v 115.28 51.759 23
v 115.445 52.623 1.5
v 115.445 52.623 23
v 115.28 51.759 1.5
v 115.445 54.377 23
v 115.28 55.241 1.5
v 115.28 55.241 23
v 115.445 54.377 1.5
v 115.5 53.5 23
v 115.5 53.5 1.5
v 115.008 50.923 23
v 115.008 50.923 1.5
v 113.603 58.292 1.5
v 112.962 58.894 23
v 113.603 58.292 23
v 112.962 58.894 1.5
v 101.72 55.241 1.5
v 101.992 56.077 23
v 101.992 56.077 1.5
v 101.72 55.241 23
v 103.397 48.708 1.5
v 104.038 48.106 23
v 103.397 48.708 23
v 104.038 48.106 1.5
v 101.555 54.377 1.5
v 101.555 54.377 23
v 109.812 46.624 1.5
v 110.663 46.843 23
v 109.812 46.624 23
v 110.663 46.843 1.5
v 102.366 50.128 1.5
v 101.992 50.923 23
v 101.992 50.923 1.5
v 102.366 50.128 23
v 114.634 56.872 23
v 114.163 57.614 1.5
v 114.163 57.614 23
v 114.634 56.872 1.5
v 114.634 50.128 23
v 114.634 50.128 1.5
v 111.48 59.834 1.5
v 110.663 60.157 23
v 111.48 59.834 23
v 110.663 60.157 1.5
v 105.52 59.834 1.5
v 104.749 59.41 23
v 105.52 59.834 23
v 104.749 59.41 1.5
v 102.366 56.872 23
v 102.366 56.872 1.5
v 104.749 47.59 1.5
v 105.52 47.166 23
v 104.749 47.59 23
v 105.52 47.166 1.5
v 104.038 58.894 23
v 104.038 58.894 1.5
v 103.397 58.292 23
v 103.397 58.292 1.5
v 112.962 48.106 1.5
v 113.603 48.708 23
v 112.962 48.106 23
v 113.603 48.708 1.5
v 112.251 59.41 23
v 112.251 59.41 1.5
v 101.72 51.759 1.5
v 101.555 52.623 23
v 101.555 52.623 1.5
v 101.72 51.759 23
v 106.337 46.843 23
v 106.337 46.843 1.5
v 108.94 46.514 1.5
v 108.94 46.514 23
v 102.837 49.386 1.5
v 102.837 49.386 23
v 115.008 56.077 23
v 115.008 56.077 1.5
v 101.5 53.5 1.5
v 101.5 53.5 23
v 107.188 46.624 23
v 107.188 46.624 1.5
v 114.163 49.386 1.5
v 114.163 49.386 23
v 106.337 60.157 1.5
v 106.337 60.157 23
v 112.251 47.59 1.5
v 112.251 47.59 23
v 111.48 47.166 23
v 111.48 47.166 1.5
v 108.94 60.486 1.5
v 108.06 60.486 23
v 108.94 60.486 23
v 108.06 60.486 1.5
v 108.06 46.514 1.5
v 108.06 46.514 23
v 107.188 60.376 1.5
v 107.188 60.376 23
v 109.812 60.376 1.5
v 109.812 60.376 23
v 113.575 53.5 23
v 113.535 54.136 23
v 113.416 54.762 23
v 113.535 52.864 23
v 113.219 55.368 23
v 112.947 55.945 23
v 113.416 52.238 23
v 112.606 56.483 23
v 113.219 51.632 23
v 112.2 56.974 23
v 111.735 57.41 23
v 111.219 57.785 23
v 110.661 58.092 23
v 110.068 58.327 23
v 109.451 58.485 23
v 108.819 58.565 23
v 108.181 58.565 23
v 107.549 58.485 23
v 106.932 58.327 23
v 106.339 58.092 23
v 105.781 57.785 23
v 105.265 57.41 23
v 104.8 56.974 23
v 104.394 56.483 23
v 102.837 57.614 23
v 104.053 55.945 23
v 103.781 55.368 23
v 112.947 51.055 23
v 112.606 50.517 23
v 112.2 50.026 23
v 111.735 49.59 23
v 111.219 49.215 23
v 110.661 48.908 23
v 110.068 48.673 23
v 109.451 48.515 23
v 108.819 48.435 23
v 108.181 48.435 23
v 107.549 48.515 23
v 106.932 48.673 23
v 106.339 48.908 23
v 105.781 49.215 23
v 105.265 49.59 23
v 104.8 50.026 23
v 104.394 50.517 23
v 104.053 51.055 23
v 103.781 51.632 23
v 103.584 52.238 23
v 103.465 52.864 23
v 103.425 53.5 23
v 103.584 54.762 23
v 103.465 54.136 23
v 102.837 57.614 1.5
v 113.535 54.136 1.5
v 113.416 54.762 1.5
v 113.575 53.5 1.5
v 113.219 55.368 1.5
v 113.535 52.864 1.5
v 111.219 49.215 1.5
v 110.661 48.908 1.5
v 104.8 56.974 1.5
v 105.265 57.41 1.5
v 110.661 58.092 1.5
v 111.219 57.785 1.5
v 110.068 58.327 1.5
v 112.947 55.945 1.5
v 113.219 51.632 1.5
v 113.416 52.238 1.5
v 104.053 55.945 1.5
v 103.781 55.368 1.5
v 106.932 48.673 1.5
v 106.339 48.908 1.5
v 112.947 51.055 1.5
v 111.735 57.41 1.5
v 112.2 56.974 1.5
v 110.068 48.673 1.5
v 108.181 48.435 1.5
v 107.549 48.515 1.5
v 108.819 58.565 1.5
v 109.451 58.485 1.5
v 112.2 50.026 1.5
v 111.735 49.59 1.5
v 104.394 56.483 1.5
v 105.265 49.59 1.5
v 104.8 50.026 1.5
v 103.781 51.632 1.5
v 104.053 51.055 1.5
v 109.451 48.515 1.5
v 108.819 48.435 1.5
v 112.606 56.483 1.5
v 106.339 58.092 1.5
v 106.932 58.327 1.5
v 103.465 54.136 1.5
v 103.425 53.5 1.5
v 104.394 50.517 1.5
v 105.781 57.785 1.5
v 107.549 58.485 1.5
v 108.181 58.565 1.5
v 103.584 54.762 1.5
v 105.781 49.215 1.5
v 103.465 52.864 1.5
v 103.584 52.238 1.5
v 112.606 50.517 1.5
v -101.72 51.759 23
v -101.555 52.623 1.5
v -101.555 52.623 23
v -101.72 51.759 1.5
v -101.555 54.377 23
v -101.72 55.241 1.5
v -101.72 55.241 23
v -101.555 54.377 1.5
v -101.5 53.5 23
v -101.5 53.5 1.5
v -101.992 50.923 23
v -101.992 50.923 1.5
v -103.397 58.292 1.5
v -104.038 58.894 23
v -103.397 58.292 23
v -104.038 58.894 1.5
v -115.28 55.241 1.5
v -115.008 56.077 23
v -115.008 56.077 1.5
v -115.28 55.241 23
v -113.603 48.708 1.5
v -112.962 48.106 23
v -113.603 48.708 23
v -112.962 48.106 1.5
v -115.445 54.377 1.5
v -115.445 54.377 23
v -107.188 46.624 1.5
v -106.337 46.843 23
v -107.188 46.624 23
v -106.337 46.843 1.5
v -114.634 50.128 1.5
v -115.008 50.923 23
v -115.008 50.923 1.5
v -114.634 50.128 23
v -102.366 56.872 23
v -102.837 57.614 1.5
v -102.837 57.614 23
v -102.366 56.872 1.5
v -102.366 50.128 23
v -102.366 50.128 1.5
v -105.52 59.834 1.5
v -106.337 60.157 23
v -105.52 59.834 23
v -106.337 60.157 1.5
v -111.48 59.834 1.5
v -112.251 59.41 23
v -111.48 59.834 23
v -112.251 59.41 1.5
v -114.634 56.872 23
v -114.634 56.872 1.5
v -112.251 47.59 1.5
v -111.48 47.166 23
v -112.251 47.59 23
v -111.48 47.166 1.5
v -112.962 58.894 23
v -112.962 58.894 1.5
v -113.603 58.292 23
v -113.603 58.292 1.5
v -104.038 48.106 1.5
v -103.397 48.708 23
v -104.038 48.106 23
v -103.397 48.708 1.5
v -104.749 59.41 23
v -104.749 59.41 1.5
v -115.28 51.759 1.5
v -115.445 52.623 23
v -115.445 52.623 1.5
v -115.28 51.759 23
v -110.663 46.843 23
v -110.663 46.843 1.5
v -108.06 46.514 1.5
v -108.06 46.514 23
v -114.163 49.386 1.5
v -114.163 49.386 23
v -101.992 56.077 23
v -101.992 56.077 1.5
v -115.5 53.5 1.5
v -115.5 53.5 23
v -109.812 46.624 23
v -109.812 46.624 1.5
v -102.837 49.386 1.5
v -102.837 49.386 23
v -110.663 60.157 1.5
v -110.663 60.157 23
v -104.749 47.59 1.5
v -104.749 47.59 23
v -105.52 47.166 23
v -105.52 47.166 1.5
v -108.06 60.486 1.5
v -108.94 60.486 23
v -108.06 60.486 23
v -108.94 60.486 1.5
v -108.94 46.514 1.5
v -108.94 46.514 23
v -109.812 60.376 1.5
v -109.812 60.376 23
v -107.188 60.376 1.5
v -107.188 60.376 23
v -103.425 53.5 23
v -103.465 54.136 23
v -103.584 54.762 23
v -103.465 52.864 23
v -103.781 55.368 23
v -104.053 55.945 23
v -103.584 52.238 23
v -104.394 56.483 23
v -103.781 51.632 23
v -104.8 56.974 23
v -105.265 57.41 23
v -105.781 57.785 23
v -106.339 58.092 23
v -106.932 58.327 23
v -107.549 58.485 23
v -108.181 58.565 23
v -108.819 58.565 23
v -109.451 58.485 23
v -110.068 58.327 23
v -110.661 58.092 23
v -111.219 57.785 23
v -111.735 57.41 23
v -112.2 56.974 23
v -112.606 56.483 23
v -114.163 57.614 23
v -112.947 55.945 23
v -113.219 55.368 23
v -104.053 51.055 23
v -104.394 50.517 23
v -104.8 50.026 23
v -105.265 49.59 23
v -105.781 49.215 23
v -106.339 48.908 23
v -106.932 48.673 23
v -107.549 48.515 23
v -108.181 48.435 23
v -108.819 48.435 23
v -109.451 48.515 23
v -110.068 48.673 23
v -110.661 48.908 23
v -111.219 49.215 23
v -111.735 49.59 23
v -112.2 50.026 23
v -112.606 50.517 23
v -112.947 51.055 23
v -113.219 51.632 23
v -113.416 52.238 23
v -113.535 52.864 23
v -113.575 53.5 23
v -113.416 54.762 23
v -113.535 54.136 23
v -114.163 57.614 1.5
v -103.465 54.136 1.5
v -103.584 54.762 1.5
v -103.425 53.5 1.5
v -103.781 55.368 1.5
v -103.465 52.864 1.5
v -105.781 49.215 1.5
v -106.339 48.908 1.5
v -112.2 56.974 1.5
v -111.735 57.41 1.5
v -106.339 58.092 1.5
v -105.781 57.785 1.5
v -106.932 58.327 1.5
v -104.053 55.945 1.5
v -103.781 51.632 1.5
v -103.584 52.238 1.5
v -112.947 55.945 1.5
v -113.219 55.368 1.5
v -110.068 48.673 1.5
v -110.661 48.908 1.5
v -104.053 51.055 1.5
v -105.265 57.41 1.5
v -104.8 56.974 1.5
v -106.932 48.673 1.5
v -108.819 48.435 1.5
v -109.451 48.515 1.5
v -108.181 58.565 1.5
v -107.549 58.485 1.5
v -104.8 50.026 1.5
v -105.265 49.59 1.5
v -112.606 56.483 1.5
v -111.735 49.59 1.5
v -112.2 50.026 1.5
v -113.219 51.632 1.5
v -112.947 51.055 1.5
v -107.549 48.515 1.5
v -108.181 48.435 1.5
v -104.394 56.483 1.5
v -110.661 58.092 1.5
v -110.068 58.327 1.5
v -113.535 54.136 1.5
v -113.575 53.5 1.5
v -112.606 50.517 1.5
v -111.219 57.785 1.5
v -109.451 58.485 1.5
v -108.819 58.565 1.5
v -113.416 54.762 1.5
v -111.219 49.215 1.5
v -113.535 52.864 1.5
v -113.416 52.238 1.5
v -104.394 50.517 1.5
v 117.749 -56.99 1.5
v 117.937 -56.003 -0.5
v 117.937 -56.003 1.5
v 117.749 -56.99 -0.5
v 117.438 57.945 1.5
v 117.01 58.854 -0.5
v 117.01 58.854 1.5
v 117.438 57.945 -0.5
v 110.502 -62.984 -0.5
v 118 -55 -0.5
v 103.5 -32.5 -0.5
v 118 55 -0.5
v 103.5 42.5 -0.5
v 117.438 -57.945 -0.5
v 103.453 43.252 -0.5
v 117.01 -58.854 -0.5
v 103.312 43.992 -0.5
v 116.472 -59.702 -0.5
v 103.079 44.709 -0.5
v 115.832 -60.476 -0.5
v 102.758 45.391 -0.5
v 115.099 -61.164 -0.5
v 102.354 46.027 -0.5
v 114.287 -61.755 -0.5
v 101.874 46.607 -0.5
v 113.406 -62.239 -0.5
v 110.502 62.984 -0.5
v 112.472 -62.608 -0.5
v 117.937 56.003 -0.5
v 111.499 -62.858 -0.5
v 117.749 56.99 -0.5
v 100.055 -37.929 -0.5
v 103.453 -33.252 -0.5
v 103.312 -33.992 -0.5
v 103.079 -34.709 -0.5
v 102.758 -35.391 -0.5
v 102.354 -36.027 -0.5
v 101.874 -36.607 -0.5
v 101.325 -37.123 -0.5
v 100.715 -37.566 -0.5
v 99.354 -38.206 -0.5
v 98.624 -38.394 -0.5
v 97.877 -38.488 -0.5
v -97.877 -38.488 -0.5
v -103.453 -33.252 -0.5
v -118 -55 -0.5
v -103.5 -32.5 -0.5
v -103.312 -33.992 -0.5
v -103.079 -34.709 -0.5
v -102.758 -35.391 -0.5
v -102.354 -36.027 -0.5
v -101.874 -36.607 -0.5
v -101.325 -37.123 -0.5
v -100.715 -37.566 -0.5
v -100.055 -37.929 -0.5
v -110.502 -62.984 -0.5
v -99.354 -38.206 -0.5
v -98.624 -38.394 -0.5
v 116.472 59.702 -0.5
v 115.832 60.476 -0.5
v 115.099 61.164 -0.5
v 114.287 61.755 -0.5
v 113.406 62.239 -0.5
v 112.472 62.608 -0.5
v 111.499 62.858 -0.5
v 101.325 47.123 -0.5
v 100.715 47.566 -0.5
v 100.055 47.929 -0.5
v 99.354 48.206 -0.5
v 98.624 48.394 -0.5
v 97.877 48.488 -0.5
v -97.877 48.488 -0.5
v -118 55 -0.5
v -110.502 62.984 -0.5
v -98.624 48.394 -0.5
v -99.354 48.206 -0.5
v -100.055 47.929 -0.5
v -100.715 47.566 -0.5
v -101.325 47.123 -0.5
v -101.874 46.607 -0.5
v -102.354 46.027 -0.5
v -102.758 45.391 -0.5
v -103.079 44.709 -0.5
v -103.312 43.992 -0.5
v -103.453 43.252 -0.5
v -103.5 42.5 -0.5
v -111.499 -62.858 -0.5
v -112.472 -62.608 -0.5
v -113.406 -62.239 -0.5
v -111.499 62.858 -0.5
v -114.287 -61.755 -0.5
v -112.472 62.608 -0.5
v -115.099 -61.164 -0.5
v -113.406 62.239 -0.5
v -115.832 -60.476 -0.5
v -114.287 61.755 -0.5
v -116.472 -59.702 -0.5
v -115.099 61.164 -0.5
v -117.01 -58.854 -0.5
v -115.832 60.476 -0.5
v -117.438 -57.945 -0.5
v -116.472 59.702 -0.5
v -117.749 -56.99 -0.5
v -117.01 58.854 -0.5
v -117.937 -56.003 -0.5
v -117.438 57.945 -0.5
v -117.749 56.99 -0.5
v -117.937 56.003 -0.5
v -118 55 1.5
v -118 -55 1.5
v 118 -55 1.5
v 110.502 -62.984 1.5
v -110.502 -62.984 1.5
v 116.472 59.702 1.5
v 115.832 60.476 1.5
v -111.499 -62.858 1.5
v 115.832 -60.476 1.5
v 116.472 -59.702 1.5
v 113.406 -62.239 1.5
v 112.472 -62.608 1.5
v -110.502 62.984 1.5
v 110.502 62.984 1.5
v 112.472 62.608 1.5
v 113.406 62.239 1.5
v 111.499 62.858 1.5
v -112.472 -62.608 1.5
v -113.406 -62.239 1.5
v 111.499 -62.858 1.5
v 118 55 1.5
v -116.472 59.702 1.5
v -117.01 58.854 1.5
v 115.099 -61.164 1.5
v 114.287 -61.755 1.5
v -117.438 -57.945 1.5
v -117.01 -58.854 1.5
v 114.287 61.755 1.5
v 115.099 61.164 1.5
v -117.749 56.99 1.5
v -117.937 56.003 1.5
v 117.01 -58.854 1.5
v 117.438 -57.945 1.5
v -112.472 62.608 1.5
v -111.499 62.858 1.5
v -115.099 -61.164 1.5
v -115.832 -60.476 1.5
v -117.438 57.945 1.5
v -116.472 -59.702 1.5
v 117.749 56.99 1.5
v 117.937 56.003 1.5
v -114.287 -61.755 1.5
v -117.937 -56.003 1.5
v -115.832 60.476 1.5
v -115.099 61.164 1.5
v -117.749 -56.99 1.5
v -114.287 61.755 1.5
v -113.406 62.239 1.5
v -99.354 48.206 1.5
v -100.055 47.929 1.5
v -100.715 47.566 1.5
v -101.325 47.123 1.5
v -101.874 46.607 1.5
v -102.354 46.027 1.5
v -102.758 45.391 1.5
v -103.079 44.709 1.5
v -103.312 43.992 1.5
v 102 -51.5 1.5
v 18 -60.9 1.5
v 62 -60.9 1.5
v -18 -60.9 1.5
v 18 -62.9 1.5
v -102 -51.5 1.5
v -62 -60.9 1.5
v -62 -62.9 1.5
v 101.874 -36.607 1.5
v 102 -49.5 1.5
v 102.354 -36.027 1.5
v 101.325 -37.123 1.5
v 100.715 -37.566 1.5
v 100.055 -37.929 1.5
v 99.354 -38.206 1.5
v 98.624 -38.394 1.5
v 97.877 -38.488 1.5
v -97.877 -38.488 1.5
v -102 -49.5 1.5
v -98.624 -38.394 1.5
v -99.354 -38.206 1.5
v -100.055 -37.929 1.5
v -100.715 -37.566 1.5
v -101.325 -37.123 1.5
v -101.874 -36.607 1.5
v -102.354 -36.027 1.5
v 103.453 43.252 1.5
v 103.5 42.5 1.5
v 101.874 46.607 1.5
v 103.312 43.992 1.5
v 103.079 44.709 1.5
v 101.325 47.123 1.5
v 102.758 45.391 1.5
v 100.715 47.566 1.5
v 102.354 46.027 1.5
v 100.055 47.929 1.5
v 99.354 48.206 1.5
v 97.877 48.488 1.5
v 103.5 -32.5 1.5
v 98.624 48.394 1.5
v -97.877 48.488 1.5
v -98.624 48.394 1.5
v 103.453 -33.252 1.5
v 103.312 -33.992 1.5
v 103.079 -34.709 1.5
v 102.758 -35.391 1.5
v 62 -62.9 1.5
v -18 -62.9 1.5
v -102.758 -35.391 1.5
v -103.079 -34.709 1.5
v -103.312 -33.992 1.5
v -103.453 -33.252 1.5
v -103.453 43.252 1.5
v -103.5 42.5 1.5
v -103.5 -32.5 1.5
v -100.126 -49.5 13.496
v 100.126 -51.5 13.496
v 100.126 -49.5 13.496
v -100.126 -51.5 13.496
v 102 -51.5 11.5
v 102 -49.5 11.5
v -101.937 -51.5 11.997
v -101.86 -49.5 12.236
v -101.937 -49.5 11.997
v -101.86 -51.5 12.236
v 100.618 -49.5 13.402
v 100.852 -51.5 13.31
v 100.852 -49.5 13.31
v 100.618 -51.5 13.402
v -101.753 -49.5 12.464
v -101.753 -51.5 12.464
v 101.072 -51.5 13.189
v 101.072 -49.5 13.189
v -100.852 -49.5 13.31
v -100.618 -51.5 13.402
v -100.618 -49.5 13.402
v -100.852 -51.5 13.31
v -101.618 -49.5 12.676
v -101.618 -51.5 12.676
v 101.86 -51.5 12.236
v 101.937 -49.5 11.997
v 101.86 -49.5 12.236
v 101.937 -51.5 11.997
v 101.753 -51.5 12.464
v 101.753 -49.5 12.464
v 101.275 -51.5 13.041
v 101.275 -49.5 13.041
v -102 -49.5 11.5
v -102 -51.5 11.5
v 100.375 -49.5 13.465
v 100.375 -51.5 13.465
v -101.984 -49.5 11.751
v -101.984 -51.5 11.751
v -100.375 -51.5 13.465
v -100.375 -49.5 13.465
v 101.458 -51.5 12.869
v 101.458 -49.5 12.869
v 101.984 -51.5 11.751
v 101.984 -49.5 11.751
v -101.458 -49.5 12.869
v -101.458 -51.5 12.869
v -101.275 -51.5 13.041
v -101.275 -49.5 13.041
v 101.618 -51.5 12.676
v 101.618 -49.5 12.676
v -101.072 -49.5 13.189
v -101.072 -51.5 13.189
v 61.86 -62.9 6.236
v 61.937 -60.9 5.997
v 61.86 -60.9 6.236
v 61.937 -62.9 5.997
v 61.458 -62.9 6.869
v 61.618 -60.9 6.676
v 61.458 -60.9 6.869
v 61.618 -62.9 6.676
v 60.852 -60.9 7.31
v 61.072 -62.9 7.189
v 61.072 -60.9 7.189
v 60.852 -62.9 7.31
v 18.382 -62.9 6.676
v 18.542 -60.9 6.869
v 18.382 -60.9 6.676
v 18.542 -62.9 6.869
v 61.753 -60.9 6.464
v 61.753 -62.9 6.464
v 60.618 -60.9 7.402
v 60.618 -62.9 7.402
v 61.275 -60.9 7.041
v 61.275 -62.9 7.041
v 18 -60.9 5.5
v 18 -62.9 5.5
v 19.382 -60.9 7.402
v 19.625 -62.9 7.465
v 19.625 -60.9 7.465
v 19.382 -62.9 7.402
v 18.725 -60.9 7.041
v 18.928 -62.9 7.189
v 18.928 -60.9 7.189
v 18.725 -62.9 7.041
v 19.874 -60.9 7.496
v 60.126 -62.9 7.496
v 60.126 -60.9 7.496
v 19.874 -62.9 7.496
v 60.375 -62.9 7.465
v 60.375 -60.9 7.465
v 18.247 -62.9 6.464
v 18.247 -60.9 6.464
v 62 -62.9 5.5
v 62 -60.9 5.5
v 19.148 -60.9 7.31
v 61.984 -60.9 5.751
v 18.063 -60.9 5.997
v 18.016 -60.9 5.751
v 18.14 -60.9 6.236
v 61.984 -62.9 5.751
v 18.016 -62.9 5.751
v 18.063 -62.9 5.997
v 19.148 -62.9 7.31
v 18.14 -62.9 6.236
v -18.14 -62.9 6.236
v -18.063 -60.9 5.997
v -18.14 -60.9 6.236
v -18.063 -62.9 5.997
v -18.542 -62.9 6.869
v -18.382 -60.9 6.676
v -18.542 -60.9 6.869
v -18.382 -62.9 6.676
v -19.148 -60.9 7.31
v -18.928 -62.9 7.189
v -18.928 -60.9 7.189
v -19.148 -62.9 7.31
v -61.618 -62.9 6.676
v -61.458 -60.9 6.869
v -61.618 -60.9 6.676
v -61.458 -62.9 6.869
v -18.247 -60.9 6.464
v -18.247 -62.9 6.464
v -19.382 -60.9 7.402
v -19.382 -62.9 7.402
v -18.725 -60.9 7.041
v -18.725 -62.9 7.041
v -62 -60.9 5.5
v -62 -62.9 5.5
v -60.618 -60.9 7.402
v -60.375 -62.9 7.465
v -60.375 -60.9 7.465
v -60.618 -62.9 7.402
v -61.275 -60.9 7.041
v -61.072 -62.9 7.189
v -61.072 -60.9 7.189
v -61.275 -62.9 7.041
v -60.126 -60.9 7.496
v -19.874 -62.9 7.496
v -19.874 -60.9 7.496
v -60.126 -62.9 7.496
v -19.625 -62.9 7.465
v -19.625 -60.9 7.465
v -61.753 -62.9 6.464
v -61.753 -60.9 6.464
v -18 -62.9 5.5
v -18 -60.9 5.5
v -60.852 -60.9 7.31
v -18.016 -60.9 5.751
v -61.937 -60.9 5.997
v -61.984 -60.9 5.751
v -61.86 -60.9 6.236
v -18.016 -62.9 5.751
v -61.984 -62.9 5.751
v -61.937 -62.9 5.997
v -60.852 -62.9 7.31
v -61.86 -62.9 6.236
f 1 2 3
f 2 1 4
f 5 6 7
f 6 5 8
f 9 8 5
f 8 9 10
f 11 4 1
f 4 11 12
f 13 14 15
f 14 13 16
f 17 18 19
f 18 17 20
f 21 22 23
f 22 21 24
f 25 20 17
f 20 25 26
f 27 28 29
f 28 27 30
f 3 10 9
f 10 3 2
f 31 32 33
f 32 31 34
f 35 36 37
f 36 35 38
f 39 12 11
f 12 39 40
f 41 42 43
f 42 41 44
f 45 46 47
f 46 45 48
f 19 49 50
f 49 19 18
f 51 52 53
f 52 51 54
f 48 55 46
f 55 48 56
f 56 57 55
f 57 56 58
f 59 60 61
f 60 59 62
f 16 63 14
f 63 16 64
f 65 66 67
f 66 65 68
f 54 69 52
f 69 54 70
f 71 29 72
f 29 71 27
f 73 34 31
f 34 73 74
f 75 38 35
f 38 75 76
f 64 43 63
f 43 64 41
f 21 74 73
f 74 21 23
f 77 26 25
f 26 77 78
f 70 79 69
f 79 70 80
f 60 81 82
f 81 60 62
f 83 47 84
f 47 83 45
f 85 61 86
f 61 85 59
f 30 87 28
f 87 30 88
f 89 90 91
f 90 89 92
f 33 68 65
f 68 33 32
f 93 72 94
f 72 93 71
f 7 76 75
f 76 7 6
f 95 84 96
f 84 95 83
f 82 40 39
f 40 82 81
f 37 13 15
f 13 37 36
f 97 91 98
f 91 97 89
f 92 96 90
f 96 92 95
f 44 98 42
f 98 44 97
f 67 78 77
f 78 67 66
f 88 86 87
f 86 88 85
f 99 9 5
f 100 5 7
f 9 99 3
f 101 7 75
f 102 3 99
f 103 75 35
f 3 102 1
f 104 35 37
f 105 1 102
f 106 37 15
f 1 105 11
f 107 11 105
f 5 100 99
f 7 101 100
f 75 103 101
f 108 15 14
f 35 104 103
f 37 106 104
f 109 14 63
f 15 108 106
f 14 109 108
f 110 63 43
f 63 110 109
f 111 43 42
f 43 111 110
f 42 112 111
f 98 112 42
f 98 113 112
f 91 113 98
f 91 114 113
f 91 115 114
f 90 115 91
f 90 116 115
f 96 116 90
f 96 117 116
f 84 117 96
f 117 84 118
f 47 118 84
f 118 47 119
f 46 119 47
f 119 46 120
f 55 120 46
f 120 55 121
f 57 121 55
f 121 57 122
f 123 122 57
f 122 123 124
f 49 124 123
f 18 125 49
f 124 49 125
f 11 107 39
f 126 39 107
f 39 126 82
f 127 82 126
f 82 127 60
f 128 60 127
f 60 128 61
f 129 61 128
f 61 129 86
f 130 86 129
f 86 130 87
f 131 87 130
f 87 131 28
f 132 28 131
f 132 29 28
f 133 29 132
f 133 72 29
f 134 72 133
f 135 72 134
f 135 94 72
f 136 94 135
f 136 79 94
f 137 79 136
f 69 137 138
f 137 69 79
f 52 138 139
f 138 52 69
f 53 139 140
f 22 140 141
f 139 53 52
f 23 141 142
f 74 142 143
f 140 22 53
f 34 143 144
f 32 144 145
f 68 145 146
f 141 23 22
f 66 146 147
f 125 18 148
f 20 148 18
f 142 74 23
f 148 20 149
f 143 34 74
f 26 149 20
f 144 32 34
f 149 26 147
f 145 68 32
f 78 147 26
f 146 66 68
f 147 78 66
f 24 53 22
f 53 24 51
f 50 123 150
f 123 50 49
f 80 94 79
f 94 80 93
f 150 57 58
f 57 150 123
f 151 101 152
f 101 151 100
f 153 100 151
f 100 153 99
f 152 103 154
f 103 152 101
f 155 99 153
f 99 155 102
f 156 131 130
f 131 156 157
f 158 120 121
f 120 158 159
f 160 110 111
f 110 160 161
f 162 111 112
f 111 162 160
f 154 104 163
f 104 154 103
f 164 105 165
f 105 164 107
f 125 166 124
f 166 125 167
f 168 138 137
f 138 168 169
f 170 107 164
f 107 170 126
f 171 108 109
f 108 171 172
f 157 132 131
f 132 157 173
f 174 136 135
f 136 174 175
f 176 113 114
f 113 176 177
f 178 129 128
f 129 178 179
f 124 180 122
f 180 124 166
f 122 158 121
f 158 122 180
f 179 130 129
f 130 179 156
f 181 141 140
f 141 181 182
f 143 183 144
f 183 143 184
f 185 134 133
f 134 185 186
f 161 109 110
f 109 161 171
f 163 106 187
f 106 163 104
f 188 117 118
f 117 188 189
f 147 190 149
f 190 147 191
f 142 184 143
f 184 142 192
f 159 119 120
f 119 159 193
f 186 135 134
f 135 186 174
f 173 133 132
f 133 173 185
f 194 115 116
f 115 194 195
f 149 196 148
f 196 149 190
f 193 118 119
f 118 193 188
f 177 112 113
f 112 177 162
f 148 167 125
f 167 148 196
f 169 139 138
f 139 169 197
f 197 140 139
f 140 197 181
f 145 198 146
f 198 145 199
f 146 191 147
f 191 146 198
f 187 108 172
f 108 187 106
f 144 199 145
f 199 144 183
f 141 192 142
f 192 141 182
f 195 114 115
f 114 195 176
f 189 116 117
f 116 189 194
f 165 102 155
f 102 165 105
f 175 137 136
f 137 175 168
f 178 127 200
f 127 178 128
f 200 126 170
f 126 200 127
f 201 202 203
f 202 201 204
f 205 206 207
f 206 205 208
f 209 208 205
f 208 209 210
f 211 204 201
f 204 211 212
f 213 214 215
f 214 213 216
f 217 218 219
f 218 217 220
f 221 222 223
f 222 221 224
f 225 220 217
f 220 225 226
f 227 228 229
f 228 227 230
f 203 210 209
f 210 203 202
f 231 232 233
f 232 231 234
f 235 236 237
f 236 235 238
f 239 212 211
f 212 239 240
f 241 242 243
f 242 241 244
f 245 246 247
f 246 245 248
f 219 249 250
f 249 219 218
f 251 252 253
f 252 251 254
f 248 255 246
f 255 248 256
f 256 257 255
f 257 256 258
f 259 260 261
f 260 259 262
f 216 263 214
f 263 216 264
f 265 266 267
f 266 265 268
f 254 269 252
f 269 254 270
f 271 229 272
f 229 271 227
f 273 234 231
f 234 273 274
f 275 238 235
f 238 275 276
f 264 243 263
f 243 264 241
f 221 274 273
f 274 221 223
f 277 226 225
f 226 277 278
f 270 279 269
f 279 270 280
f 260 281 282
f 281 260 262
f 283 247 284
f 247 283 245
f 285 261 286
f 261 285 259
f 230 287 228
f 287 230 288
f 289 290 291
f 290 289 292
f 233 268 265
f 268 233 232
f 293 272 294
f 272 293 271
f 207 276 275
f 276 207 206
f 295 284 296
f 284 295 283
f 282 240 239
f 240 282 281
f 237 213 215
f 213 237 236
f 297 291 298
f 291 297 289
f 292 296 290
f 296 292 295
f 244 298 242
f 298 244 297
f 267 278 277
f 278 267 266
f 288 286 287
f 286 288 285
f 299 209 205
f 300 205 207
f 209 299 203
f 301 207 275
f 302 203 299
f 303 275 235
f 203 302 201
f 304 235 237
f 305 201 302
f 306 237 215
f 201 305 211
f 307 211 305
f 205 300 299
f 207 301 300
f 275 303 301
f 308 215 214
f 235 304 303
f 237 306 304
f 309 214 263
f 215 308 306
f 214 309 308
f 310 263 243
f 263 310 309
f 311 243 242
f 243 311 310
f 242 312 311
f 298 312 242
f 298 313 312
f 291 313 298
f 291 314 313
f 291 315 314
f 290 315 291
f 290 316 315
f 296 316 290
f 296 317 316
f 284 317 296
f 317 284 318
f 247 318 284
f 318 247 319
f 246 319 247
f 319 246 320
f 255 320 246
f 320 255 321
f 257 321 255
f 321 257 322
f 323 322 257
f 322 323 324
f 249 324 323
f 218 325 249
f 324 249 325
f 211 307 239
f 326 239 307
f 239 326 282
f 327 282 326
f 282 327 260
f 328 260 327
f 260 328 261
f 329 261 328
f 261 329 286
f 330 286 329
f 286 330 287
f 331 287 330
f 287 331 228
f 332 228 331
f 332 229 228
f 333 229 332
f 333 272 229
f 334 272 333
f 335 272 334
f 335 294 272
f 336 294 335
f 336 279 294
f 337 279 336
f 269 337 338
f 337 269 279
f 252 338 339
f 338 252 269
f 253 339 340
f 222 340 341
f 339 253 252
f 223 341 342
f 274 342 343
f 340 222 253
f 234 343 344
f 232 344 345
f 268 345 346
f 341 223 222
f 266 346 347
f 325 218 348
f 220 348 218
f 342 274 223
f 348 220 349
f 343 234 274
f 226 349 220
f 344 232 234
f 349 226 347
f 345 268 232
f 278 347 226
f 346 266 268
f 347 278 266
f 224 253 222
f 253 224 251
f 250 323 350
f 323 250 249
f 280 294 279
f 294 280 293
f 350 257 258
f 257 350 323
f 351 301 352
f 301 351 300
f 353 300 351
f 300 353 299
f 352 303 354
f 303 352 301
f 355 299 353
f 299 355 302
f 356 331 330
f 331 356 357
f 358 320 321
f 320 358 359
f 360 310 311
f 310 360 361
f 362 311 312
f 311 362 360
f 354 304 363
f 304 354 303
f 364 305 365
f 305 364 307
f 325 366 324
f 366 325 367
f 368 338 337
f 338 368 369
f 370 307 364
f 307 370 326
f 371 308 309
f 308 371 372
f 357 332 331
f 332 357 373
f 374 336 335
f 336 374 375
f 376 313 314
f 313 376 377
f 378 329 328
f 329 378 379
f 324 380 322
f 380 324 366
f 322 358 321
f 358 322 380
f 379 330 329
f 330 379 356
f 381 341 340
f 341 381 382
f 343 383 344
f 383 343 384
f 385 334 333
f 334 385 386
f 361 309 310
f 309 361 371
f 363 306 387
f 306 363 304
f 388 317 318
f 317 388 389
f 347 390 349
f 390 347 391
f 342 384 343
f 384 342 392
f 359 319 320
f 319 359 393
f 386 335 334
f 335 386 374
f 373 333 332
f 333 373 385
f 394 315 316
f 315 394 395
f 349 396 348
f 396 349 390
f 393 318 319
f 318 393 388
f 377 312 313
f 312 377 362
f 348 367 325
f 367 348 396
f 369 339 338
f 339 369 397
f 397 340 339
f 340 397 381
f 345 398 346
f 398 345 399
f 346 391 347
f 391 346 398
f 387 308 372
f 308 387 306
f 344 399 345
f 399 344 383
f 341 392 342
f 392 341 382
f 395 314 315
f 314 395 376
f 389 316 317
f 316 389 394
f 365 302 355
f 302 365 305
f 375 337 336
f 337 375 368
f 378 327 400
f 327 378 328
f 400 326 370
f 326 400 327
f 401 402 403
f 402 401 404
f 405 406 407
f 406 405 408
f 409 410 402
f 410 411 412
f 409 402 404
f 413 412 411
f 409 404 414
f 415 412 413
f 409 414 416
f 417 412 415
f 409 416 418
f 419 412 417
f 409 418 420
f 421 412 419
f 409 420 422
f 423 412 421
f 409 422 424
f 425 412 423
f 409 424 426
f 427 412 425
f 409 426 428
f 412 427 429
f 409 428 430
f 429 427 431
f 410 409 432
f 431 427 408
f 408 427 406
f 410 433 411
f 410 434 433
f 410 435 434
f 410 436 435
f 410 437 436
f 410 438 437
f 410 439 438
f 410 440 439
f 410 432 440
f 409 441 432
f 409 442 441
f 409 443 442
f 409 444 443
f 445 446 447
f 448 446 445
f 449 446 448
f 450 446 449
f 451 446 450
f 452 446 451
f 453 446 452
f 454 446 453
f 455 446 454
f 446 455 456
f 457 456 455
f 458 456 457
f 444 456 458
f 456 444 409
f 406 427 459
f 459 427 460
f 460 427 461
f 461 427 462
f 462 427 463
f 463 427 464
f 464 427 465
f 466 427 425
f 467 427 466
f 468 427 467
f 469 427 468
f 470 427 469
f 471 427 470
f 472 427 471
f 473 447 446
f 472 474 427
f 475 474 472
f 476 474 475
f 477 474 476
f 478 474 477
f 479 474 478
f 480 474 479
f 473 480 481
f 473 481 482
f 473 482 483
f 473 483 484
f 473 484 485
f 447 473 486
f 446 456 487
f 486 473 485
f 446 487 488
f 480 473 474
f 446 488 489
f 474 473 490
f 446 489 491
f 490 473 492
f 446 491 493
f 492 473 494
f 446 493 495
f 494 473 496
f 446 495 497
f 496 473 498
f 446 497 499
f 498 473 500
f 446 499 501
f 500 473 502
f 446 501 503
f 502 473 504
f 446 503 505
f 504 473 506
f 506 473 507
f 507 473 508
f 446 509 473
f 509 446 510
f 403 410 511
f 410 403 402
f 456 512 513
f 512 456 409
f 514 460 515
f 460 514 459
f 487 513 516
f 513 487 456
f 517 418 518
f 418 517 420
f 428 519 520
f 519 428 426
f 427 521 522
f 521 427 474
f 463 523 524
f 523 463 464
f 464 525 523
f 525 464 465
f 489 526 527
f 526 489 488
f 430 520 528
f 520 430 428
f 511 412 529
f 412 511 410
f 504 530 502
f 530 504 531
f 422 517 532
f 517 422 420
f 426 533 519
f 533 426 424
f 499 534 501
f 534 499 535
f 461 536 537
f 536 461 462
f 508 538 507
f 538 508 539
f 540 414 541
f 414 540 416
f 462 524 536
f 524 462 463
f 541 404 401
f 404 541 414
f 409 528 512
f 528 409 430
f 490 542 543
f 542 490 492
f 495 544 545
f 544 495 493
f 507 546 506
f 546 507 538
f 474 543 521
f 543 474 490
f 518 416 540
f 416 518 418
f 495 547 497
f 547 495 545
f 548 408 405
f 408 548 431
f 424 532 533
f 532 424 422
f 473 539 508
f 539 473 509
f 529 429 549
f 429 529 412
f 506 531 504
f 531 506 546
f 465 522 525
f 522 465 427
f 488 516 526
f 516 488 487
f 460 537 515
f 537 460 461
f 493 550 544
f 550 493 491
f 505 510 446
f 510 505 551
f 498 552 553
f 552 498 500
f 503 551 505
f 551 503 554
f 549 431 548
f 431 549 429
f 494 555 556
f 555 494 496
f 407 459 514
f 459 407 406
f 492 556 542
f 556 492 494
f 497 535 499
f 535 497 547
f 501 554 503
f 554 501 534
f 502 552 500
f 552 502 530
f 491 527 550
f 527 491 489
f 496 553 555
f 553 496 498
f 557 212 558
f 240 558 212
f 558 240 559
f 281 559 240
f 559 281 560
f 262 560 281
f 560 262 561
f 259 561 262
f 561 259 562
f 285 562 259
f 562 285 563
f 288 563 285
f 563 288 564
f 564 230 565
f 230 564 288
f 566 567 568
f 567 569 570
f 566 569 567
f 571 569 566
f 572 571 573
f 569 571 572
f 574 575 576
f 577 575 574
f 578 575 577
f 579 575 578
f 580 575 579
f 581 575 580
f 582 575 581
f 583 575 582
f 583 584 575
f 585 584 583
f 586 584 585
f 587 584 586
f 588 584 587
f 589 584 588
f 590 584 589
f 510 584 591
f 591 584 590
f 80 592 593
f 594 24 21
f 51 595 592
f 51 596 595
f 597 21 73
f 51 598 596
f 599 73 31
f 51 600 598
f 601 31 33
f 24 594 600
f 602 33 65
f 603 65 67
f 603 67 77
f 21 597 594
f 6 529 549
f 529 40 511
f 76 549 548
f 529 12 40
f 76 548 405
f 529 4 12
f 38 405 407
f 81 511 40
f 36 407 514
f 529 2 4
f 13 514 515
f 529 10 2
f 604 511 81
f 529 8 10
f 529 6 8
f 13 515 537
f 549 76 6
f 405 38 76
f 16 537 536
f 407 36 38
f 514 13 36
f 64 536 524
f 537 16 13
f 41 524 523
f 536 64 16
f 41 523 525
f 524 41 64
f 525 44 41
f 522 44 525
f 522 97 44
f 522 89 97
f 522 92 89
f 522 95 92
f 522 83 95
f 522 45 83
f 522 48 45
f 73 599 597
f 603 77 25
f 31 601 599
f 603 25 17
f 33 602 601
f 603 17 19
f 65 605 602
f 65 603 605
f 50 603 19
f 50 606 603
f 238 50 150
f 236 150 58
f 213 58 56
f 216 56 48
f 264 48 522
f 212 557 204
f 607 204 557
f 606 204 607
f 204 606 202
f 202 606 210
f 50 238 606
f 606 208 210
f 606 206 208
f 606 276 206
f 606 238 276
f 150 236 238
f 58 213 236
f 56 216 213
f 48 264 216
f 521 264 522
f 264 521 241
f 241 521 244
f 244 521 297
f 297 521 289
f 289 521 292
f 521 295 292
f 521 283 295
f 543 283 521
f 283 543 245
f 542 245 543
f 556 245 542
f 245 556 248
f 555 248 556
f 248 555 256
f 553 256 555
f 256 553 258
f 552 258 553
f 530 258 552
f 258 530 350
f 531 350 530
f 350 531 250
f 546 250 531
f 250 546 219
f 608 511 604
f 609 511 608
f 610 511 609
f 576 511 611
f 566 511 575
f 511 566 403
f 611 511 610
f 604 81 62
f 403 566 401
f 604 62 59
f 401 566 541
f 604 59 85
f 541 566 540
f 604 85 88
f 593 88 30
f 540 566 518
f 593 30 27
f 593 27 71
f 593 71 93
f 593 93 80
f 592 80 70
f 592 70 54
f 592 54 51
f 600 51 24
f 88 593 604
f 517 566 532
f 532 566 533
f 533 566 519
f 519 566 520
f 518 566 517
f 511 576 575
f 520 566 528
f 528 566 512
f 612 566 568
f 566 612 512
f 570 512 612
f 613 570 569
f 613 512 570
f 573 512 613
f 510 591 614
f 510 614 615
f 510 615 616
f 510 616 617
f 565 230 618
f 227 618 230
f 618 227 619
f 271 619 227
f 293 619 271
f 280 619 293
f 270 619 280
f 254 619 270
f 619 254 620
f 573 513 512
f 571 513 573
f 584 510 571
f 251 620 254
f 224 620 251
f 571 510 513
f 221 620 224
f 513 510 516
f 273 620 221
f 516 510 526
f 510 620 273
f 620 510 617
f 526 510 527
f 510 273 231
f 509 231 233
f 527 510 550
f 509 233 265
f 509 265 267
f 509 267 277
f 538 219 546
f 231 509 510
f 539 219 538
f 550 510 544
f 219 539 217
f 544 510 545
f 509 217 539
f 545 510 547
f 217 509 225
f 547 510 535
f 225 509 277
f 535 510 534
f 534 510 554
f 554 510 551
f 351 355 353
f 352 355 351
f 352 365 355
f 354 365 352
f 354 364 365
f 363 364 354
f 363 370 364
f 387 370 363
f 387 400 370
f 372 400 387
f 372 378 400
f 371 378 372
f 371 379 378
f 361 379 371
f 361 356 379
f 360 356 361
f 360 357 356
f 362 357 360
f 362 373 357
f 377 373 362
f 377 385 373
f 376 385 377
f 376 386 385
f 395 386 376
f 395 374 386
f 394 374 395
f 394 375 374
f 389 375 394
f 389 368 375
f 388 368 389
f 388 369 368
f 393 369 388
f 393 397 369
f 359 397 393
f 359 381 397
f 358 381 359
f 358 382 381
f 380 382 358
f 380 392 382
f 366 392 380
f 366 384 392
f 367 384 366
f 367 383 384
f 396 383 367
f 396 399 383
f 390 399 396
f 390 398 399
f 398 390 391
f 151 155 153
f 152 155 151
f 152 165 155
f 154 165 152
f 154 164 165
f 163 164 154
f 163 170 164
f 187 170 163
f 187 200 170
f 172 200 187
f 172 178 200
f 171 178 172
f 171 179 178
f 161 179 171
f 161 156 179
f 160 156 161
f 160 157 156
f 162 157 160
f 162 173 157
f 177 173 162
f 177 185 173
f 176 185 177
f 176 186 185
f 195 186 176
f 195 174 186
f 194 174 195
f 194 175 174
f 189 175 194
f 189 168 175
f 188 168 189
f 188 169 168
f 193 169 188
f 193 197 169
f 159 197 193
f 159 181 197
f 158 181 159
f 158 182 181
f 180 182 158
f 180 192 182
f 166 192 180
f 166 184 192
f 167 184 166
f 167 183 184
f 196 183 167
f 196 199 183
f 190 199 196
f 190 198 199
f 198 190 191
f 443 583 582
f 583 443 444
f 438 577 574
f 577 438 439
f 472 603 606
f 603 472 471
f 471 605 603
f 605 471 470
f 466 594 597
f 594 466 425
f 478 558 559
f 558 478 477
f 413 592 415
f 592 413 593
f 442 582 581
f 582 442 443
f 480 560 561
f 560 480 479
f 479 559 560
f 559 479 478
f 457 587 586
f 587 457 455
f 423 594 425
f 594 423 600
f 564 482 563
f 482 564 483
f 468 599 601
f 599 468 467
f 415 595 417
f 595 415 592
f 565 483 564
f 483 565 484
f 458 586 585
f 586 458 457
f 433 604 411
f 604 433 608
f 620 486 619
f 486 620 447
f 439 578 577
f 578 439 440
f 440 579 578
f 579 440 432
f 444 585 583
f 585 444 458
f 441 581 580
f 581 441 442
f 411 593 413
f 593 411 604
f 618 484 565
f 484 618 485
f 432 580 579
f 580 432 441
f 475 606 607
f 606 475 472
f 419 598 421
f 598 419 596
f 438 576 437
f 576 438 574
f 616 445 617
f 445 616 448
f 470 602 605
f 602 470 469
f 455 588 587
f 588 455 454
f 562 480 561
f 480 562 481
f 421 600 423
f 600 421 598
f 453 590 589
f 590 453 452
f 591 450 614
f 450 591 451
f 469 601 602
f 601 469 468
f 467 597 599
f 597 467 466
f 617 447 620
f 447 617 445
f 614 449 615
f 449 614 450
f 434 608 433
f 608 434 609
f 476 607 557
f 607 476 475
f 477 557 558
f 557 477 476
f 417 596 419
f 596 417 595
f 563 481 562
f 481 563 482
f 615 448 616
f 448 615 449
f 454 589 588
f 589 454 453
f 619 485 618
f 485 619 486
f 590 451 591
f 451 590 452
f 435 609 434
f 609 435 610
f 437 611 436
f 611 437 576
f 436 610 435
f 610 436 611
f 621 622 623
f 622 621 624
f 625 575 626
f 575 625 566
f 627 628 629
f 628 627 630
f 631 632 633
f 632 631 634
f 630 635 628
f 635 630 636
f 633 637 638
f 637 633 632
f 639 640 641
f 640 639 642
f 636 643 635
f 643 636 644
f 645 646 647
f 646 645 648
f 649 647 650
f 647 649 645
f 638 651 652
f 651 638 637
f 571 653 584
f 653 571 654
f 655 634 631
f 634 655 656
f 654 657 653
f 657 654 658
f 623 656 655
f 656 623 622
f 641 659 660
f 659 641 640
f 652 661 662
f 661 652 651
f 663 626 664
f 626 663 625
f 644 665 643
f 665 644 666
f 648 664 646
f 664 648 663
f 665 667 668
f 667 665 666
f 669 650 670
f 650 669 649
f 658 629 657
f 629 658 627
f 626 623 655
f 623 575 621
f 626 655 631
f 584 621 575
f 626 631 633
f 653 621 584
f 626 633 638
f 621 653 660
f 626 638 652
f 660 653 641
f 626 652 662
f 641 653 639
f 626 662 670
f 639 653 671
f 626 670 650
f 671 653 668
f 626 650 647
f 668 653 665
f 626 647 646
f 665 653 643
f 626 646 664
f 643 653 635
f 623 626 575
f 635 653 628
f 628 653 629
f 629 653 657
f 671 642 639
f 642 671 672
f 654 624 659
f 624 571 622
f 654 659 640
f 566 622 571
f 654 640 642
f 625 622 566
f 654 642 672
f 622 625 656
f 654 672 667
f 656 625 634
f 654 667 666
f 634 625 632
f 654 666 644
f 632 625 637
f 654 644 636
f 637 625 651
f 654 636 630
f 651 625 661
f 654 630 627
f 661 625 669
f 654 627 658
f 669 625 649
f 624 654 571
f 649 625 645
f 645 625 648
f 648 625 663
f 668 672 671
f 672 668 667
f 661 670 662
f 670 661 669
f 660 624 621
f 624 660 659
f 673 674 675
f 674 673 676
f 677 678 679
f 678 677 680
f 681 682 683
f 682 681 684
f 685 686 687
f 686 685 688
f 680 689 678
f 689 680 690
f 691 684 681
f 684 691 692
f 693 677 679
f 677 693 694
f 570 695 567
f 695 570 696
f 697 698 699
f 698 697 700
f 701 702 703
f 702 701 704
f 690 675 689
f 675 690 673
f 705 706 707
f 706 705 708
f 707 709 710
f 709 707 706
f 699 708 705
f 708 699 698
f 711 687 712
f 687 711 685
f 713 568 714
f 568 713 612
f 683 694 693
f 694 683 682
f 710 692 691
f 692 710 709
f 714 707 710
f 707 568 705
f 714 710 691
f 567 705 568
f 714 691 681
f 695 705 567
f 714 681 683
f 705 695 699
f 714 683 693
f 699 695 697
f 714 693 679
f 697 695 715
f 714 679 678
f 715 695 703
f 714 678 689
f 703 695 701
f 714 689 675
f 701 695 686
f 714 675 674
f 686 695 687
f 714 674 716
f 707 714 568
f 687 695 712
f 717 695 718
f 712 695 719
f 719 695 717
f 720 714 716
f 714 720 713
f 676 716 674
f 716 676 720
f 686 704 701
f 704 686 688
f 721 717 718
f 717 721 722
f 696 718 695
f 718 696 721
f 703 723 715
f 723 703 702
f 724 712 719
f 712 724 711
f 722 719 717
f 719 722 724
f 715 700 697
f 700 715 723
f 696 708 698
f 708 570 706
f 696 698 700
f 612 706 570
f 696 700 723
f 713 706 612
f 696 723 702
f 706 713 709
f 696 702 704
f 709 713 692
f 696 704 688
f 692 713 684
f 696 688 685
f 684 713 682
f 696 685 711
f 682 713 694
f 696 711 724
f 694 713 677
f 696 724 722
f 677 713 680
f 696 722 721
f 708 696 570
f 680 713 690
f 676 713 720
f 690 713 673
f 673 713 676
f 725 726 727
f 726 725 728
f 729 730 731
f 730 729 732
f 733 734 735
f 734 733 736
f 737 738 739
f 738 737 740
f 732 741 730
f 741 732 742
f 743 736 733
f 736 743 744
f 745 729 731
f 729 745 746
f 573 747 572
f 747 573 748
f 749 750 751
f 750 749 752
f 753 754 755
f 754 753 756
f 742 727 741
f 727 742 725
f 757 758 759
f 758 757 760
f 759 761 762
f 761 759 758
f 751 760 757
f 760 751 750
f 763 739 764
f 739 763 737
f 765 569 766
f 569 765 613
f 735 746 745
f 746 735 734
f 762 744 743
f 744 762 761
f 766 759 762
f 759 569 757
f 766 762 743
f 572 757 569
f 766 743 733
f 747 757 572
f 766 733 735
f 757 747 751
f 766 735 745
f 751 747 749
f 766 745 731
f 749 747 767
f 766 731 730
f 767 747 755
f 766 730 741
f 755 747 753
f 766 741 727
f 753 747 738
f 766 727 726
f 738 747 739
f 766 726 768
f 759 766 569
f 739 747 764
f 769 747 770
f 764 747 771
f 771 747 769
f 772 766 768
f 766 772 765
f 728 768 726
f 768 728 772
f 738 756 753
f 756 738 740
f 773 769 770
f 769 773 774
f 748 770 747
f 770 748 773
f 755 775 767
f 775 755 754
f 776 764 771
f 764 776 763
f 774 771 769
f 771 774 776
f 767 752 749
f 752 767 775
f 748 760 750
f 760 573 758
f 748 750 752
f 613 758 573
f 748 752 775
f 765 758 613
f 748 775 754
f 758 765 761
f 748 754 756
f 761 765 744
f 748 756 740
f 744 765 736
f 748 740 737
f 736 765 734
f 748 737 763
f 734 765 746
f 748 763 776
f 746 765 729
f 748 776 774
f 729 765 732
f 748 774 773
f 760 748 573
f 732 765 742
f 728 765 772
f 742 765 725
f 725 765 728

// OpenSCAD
$fn =50;

module hole() { 
    translate([0,0,12]) {
        difference() {
            cylinder(h=22,d=14,center=true);
            cylinder(h=22,d=10.15,center=true);
        }
    }
}

module stopper() { 
    minkowski()
    {
      cube([200,10,1], center=true);
      cylinder(r=2,h=1);
    }
}

module smallstop() { 
    minkowski()
    {
      cube([40,4,1], center=true);
      cylinder(r=2,h=1);
    }
}

w = 108.5;
h = 53.5;

translate([w,h,0]) {
    hole();
}
translate([-w,h,0]) {
    hole();
}

rotate([90,0,0]) {
    translate([0,6.5,50]) {
        stopper();
    }
    translate([40,3.5,61.4]) {
        smallstop();
    }
    translate([-40,3.5,61.4]) {
        smallstop();
    }
}

difference() {
    minkowski()
    {
      cube([220,110,1], center=true);
      cylinder(r=8,h=1);
    }
    translate([0,5,0]) {
        minkowski()
        {
          cube([195,75,1], center=true);
          cylinder(r=6,h=1);
        }
    }
}
